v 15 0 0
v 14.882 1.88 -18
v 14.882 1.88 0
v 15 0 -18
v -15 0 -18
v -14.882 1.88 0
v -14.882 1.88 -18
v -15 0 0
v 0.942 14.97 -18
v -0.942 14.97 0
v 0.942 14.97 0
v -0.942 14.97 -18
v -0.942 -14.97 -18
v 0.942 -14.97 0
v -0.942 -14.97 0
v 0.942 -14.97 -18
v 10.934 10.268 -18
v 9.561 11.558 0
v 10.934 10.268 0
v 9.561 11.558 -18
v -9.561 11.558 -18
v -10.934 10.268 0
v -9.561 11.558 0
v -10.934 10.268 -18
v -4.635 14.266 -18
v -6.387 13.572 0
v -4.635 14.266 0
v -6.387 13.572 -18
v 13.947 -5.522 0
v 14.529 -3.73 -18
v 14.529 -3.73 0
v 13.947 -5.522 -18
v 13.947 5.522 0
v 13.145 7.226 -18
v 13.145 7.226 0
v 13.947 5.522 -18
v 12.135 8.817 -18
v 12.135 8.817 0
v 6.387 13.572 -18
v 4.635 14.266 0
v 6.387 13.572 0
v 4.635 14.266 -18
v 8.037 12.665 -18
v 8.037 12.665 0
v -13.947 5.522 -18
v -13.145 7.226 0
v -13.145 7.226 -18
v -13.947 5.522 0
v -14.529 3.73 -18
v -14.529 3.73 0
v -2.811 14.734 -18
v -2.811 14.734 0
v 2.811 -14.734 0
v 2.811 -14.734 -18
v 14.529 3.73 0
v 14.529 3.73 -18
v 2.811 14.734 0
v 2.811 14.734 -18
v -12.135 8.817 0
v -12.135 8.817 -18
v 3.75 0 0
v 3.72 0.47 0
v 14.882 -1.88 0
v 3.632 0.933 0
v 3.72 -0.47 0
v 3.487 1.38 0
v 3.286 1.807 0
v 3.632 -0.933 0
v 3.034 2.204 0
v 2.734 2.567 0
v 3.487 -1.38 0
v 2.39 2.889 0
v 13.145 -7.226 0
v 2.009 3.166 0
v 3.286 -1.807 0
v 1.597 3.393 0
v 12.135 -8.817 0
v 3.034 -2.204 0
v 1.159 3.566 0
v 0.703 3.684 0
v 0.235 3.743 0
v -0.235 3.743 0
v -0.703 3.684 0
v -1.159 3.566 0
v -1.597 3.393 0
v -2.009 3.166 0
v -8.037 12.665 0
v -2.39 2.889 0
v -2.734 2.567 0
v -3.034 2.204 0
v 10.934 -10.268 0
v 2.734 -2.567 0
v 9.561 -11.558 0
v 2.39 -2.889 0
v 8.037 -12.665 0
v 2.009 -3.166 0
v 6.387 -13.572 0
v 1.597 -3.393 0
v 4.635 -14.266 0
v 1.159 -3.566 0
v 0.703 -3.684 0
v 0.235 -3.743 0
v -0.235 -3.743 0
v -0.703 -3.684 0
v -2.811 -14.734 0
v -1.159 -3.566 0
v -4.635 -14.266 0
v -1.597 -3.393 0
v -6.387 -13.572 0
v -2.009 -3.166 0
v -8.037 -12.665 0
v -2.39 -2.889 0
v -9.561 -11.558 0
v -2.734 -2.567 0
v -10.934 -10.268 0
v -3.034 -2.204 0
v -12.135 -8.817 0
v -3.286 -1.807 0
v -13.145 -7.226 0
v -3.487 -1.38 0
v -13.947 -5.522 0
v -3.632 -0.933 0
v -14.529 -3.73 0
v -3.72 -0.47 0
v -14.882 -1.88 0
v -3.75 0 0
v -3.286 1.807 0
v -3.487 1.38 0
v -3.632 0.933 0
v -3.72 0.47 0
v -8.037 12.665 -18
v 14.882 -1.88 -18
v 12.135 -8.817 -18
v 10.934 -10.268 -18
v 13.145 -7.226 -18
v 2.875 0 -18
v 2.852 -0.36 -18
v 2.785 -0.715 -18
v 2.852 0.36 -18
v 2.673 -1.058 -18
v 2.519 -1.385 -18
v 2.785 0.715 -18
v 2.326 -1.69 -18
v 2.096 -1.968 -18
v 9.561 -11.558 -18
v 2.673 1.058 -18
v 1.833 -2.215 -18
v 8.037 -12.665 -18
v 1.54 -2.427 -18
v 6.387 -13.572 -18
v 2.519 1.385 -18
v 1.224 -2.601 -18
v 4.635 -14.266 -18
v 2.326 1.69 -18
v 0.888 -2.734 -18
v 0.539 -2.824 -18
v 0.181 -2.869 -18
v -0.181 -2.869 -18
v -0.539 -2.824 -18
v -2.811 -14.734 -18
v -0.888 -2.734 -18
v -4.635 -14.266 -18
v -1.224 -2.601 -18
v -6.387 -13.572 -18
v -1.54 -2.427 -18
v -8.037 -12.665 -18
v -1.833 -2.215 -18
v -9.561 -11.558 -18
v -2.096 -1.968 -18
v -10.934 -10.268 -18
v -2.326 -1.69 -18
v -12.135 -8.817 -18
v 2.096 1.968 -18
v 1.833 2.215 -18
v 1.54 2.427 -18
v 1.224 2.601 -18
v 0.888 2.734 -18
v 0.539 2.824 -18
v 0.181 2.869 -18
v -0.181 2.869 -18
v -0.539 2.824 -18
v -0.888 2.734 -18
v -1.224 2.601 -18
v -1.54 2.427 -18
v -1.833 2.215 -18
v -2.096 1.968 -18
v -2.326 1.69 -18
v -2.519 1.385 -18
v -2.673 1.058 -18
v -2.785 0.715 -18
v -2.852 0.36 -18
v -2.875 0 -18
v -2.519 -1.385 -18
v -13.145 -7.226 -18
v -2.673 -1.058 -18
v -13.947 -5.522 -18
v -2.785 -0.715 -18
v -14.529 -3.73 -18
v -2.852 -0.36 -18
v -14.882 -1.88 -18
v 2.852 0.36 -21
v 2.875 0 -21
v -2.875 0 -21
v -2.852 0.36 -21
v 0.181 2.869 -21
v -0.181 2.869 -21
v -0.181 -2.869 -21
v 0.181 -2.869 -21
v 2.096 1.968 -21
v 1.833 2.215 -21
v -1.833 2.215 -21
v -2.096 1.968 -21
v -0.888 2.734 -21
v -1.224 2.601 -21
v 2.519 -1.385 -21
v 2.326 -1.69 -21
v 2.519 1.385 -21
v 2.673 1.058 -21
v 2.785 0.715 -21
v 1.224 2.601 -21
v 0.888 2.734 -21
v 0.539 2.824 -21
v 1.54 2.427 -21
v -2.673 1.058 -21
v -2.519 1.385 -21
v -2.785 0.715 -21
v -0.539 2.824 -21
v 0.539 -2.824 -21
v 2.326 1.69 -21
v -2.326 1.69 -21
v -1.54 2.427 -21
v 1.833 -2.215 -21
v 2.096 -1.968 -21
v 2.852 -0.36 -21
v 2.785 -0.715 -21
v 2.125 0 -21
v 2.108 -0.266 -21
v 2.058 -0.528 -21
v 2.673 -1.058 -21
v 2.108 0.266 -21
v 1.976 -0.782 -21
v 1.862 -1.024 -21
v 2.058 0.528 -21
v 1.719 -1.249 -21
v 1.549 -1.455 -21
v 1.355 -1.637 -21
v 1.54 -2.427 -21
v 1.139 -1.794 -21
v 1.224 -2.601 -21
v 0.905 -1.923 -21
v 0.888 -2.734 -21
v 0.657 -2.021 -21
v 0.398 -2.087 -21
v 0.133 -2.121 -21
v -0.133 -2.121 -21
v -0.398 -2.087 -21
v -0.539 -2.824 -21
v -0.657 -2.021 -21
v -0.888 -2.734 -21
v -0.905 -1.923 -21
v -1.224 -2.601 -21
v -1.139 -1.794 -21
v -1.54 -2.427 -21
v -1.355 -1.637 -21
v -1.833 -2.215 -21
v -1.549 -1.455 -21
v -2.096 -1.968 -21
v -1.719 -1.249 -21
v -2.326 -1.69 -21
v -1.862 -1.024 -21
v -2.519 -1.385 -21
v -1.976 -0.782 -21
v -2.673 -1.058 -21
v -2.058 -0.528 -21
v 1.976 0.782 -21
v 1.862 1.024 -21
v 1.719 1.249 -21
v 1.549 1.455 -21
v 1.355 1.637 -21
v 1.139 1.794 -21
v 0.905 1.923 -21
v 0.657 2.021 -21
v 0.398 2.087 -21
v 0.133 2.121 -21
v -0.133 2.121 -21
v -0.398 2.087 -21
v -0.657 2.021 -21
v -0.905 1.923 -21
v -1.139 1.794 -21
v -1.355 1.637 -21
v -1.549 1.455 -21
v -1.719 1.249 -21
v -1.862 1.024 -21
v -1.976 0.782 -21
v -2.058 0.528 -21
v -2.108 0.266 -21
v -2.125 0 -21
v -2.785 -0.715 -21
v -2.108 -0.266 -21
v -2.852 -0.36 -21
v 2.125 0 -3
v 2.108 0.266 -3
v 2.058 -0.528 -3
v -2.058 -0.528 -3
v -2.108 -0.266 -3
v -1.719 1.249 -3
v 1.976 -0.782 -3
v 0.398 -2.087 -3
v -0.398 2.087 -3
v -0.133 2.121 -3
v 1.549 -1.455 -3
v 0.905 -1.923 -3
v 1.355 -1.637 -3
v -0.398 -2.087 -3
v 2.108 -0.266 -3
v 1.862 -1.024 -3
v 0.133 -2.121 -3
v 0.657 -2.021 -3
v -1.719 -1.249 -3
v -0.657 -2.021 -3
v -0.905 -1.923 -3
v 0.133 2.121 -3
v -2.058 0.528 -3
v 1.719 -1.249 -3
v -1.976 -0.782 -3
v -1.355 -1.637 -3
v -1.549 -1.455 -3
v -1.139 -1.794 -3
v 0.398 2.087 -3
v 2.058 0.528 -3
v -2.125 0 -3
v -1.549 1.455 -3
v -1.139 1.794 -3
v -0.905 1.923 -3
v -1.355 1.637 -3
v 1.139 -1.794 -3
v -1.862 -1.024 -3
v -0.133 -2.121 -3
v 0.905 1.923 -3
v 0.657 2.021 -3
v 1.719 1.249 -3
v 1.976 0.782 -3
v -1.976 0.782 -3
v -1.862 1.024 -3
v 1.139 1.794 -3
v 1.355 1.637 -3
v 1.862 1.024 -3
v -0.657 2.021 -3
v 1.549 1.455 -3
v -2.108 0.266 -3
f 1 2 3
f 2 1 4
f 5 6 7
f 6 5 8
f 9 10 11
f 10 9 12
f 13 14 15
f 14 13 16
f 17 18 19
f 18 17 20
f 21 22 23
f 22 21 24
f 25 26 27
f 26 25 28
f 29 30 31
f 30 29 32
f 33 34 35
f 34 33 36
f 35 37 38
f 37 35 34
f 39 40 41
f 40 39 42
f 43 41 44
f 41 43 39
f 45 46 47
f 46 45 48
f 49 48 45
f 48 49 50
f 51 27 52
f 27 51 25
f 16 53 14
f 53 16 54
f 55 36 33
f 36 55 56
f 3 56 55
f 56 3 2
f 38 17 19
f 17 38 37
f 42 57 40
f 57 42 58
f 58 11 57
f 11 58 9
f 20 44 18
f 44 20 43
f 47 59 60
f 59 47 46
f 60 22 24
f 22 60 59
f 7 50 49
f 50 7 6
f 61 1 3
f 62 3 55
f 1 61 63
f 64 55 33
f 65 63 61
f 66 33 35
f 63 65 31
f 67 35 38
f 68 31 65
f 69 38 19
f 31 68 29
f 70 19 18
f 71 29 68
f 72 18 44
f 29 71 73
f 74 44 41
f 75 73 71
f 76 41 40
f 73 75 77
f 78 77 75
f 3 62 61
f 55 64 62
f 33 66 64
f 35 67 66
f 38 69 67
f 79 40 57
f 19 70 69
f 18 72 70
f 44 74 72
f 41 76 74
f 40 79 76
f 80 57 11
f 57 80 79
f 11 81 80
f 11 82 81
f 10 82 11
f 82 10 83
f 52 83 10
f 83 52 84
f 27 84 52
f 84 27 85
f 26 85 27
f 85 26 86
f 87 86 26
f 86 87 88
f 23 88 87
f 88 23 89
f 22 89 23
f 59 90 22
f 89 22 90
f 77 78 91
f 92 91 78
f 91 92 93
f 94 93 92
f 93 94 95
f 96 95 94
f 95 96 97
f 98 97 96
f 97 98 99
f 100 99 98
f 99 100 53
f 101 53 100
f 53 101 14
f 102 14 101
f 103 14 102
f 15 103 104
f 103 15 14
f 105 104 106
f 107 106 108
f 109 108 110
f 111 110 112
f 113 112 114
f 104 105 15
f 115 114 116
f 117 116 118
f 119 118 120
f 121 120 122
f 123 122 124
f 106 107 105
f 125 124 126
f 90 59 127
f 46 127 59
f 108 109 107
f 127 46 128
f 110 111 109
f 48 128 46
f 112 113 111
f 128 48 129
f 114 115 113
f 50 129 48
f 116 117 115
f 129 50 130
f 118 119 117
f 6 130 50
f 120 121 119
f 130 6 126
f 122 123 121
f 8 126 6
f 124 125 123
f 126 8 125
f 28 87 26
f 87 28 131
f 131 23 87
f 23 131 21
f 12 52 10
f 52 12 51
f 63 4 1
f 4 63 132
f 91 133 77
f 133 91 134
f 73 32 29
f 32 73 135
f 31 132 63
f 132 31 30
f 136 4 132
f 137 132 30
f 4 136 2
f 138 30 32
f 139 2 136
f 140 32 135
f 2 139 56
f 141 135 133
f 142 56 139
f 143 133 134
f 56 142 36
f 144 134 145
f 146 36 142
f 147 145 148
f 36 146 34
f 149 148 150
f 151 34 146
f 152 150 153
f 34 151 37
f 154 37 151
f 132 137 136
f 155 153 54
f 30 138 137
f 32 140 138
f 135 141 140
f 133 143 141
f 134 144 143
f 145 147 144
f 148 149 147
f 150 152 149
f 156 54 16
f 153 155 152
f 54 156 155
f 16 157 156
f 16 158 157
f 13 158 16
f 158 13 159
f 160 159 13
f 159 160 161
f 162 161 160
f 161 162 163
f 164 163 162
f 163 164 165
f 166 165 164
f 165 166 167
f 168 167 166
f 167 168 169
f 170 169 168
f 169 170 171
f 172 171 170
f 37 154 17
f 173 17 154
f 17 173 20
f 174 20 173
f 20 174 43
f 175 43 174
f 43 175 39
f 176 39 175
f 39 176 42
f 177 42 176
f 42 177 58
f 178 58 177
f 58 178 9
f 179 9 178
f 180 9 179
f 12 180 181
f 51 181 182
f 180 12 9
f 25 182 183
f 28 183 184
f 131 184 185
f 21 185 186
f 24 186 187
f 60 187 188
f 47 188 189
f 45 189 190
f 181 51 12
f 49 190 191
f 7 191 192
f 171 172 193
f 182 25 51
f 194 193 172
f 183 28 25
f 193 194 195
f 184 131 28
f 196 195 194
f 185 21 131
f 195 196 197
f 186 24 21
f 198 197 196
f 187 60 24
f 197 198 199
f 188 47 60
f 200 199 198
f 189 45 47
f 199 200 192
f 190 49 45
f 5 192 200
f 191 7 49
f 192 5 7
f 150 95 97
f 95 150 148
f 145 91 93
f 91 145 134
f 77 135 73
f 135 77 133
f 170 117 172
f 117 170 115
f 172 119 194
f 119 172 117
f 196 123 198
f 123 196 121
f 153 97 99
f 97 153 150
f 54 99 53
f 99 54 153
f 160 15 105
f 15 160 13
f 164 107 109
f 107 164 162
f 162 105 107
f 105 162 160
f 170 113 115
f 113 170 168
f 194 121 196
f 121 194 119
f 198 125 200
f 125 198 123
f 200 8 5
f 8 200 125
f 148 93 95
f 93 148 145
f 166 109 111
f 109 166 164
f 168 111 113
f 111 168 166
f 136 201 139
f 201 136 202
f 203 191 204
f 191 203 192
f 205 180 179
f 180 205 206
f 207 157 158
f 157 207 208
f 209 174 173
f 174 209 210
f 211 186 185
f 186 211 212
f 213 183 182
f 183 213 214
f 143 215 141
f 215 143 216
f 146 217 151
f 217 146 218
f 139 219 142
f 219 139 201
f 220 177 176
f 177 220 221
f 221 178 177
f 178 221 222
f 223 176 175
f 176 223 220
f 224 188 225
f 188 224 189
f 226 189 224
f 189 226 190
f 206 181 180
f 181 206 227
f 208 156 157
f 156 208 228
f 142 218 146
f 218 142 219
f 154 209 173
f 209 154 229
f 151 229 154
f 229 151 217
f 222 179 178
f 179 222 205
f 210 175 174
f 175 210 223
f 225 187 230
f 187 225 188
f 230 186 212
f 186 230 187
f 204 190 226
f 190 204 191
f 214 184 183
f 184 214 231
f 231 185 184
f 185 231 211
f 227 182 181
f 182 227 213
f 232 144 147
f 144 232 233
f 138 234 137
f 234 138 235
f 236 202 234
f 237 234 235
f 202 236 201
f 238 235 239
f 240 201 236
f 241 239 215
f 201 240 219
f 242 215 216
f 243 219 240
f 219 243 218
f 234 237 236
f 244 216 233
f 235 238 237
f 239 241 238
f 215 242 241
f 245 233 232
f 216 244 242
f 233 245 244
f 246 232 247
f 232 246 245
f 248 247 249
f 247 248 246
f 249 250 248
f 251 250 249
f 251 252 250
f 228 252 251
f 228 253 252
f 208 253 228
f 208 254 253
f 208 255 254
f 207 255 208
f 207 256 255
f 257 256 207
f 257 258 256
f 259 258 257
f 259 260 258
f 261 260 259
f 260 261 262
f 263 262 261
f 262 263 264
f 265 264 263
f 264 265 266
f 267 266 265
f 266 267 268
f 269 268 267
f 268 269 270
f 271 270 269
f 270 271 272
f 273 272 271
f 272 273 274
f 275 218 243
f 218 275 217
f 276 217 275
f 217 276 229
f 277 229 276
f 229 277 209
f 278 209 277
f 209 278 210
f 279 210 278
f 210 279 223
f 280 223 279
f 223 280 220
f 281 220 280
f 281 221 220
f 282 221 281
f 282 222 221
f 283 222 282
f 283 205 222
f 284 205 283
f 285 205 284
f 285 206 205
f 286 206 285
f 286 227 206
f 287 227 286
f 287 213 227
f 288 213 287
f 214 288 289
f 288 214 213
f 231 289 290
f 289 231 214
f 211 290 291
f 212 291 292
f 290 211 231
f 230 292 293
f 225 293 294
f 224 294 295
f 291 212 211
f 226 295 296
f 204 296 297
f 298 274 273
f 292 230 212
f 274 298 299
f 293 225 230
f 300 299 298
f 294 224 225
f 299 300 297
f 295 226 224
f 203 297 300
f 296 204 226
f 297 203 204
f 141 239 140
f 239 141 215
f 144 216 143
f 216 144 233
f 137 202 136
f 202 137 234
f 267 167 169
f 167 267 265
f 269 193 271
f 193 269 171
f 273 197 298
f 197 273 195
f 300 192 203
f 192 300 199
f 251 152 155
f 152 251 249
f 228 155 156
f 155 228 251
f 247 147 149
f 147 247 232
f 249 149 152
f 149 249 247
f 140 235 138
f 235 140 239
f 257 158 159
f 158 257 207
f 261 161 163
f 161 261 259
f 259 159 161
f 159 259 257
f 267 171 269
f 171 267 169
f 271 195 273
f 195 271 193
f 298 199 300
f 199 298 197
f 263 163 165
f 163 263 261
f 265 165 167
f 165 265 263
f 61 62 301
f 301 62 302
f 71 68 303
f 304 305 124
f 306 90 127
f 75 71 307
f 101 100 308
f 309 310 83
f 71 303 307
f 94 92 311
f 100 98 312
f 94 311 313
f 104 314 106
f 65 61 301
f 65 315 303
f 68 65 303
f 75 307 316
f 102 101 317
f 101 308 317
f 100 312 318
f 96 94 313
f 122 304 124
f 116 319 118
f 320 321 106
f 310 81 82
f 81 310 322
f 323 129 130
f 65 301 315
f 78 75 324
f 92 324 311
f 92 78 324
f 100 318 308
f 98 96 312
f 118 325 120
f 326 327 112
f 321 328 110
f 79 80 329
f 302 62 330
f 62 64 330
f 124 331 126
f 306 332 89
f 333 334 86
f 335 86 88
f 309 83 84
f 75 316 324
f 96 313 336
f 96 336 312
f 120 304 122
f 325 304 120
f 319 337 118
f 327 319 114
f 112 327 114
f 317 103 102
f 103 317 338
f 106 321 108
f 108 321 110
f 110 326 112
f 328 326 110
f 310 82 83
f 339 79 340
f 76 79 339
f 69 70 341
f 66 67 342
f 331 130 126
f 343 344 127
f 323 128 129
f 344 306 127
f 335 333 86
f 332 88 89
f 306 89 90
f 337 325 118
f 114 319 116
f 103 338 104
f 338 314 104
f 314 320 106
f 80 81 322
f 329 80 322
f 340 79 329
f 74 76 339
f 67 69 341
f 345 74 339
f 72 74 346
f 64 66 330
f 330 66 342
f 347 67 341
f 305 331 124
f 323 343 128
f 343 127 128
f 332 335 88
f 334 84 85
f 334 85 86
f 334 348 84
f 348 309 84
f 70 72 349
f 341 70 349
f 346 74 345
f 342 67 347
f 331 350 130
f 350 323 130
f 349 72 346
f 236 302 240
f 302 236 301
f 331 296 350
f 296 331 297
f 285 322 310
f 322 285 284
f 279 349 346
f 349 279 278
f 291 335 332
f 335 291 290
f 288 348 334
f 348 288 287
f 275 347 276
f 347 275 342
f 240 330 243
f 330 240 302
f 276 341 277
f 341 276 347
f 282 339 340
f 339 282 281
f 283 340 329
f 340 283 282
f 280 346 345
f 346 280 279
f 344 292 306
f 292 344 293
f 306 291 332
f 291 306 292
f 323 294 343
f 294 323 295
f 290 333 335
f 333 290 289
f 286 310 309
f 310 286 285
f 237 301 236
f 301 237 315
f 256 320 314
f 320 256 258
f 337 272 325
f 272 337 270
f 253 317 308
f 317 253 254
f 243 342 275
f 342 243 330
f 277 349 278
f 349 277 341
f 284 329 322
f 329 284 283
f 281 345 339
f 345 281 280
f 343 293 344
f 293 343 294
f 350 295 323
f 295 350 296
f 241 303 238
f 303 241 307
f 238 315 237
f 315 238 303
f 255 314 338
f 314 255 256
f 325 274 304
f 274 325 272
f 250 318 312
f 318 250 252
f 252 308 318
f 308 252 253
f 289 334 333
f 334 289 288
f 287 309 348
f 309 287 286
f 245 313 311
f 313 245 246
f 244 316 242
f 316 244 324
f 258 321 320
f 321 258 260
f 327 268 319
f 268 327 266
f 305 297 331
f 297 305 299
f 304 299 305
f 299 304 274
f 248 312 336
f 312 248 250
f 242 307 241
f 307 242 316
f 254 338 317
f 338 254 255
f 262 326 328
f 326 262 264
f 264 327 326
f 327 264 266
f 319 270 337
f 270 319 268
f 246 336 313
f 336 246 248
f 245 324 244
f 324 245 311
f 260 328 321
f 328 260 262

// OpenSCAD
$fn = 50;

difference() {
	union() {
		translate(v = [0, 0, -18.0]) {
			cylinder(h = 18, r = 15.0);
		}
		#translate(v = [0, 0, -21.0]) {
			cylinder(h = 21, r = 2.875);
		}
	}
	union() {
		translate(v = [0, 0, 0]) {
			rotate(a = [0, 0, 0]) {
				difference() {
					union() {
						translate(v = [0, 0, -21.0]) {
							cylinder(h = 21, r = 2.0);
						}
						translate(v = [0, 0, -3]) {
							cylinder(h = 3, r1 = 2.125, r2 = 3.75);
						}
						translate(v = [0, 0, -21.0]) {
							cylinder(h = 21, r = 2.125);
						}
						translate(v = [0, 0, -21.0]) {
							cylinder(h = 21, r = 2.0);
						}
					}
					union();
				}
			}
		}
	}
}
